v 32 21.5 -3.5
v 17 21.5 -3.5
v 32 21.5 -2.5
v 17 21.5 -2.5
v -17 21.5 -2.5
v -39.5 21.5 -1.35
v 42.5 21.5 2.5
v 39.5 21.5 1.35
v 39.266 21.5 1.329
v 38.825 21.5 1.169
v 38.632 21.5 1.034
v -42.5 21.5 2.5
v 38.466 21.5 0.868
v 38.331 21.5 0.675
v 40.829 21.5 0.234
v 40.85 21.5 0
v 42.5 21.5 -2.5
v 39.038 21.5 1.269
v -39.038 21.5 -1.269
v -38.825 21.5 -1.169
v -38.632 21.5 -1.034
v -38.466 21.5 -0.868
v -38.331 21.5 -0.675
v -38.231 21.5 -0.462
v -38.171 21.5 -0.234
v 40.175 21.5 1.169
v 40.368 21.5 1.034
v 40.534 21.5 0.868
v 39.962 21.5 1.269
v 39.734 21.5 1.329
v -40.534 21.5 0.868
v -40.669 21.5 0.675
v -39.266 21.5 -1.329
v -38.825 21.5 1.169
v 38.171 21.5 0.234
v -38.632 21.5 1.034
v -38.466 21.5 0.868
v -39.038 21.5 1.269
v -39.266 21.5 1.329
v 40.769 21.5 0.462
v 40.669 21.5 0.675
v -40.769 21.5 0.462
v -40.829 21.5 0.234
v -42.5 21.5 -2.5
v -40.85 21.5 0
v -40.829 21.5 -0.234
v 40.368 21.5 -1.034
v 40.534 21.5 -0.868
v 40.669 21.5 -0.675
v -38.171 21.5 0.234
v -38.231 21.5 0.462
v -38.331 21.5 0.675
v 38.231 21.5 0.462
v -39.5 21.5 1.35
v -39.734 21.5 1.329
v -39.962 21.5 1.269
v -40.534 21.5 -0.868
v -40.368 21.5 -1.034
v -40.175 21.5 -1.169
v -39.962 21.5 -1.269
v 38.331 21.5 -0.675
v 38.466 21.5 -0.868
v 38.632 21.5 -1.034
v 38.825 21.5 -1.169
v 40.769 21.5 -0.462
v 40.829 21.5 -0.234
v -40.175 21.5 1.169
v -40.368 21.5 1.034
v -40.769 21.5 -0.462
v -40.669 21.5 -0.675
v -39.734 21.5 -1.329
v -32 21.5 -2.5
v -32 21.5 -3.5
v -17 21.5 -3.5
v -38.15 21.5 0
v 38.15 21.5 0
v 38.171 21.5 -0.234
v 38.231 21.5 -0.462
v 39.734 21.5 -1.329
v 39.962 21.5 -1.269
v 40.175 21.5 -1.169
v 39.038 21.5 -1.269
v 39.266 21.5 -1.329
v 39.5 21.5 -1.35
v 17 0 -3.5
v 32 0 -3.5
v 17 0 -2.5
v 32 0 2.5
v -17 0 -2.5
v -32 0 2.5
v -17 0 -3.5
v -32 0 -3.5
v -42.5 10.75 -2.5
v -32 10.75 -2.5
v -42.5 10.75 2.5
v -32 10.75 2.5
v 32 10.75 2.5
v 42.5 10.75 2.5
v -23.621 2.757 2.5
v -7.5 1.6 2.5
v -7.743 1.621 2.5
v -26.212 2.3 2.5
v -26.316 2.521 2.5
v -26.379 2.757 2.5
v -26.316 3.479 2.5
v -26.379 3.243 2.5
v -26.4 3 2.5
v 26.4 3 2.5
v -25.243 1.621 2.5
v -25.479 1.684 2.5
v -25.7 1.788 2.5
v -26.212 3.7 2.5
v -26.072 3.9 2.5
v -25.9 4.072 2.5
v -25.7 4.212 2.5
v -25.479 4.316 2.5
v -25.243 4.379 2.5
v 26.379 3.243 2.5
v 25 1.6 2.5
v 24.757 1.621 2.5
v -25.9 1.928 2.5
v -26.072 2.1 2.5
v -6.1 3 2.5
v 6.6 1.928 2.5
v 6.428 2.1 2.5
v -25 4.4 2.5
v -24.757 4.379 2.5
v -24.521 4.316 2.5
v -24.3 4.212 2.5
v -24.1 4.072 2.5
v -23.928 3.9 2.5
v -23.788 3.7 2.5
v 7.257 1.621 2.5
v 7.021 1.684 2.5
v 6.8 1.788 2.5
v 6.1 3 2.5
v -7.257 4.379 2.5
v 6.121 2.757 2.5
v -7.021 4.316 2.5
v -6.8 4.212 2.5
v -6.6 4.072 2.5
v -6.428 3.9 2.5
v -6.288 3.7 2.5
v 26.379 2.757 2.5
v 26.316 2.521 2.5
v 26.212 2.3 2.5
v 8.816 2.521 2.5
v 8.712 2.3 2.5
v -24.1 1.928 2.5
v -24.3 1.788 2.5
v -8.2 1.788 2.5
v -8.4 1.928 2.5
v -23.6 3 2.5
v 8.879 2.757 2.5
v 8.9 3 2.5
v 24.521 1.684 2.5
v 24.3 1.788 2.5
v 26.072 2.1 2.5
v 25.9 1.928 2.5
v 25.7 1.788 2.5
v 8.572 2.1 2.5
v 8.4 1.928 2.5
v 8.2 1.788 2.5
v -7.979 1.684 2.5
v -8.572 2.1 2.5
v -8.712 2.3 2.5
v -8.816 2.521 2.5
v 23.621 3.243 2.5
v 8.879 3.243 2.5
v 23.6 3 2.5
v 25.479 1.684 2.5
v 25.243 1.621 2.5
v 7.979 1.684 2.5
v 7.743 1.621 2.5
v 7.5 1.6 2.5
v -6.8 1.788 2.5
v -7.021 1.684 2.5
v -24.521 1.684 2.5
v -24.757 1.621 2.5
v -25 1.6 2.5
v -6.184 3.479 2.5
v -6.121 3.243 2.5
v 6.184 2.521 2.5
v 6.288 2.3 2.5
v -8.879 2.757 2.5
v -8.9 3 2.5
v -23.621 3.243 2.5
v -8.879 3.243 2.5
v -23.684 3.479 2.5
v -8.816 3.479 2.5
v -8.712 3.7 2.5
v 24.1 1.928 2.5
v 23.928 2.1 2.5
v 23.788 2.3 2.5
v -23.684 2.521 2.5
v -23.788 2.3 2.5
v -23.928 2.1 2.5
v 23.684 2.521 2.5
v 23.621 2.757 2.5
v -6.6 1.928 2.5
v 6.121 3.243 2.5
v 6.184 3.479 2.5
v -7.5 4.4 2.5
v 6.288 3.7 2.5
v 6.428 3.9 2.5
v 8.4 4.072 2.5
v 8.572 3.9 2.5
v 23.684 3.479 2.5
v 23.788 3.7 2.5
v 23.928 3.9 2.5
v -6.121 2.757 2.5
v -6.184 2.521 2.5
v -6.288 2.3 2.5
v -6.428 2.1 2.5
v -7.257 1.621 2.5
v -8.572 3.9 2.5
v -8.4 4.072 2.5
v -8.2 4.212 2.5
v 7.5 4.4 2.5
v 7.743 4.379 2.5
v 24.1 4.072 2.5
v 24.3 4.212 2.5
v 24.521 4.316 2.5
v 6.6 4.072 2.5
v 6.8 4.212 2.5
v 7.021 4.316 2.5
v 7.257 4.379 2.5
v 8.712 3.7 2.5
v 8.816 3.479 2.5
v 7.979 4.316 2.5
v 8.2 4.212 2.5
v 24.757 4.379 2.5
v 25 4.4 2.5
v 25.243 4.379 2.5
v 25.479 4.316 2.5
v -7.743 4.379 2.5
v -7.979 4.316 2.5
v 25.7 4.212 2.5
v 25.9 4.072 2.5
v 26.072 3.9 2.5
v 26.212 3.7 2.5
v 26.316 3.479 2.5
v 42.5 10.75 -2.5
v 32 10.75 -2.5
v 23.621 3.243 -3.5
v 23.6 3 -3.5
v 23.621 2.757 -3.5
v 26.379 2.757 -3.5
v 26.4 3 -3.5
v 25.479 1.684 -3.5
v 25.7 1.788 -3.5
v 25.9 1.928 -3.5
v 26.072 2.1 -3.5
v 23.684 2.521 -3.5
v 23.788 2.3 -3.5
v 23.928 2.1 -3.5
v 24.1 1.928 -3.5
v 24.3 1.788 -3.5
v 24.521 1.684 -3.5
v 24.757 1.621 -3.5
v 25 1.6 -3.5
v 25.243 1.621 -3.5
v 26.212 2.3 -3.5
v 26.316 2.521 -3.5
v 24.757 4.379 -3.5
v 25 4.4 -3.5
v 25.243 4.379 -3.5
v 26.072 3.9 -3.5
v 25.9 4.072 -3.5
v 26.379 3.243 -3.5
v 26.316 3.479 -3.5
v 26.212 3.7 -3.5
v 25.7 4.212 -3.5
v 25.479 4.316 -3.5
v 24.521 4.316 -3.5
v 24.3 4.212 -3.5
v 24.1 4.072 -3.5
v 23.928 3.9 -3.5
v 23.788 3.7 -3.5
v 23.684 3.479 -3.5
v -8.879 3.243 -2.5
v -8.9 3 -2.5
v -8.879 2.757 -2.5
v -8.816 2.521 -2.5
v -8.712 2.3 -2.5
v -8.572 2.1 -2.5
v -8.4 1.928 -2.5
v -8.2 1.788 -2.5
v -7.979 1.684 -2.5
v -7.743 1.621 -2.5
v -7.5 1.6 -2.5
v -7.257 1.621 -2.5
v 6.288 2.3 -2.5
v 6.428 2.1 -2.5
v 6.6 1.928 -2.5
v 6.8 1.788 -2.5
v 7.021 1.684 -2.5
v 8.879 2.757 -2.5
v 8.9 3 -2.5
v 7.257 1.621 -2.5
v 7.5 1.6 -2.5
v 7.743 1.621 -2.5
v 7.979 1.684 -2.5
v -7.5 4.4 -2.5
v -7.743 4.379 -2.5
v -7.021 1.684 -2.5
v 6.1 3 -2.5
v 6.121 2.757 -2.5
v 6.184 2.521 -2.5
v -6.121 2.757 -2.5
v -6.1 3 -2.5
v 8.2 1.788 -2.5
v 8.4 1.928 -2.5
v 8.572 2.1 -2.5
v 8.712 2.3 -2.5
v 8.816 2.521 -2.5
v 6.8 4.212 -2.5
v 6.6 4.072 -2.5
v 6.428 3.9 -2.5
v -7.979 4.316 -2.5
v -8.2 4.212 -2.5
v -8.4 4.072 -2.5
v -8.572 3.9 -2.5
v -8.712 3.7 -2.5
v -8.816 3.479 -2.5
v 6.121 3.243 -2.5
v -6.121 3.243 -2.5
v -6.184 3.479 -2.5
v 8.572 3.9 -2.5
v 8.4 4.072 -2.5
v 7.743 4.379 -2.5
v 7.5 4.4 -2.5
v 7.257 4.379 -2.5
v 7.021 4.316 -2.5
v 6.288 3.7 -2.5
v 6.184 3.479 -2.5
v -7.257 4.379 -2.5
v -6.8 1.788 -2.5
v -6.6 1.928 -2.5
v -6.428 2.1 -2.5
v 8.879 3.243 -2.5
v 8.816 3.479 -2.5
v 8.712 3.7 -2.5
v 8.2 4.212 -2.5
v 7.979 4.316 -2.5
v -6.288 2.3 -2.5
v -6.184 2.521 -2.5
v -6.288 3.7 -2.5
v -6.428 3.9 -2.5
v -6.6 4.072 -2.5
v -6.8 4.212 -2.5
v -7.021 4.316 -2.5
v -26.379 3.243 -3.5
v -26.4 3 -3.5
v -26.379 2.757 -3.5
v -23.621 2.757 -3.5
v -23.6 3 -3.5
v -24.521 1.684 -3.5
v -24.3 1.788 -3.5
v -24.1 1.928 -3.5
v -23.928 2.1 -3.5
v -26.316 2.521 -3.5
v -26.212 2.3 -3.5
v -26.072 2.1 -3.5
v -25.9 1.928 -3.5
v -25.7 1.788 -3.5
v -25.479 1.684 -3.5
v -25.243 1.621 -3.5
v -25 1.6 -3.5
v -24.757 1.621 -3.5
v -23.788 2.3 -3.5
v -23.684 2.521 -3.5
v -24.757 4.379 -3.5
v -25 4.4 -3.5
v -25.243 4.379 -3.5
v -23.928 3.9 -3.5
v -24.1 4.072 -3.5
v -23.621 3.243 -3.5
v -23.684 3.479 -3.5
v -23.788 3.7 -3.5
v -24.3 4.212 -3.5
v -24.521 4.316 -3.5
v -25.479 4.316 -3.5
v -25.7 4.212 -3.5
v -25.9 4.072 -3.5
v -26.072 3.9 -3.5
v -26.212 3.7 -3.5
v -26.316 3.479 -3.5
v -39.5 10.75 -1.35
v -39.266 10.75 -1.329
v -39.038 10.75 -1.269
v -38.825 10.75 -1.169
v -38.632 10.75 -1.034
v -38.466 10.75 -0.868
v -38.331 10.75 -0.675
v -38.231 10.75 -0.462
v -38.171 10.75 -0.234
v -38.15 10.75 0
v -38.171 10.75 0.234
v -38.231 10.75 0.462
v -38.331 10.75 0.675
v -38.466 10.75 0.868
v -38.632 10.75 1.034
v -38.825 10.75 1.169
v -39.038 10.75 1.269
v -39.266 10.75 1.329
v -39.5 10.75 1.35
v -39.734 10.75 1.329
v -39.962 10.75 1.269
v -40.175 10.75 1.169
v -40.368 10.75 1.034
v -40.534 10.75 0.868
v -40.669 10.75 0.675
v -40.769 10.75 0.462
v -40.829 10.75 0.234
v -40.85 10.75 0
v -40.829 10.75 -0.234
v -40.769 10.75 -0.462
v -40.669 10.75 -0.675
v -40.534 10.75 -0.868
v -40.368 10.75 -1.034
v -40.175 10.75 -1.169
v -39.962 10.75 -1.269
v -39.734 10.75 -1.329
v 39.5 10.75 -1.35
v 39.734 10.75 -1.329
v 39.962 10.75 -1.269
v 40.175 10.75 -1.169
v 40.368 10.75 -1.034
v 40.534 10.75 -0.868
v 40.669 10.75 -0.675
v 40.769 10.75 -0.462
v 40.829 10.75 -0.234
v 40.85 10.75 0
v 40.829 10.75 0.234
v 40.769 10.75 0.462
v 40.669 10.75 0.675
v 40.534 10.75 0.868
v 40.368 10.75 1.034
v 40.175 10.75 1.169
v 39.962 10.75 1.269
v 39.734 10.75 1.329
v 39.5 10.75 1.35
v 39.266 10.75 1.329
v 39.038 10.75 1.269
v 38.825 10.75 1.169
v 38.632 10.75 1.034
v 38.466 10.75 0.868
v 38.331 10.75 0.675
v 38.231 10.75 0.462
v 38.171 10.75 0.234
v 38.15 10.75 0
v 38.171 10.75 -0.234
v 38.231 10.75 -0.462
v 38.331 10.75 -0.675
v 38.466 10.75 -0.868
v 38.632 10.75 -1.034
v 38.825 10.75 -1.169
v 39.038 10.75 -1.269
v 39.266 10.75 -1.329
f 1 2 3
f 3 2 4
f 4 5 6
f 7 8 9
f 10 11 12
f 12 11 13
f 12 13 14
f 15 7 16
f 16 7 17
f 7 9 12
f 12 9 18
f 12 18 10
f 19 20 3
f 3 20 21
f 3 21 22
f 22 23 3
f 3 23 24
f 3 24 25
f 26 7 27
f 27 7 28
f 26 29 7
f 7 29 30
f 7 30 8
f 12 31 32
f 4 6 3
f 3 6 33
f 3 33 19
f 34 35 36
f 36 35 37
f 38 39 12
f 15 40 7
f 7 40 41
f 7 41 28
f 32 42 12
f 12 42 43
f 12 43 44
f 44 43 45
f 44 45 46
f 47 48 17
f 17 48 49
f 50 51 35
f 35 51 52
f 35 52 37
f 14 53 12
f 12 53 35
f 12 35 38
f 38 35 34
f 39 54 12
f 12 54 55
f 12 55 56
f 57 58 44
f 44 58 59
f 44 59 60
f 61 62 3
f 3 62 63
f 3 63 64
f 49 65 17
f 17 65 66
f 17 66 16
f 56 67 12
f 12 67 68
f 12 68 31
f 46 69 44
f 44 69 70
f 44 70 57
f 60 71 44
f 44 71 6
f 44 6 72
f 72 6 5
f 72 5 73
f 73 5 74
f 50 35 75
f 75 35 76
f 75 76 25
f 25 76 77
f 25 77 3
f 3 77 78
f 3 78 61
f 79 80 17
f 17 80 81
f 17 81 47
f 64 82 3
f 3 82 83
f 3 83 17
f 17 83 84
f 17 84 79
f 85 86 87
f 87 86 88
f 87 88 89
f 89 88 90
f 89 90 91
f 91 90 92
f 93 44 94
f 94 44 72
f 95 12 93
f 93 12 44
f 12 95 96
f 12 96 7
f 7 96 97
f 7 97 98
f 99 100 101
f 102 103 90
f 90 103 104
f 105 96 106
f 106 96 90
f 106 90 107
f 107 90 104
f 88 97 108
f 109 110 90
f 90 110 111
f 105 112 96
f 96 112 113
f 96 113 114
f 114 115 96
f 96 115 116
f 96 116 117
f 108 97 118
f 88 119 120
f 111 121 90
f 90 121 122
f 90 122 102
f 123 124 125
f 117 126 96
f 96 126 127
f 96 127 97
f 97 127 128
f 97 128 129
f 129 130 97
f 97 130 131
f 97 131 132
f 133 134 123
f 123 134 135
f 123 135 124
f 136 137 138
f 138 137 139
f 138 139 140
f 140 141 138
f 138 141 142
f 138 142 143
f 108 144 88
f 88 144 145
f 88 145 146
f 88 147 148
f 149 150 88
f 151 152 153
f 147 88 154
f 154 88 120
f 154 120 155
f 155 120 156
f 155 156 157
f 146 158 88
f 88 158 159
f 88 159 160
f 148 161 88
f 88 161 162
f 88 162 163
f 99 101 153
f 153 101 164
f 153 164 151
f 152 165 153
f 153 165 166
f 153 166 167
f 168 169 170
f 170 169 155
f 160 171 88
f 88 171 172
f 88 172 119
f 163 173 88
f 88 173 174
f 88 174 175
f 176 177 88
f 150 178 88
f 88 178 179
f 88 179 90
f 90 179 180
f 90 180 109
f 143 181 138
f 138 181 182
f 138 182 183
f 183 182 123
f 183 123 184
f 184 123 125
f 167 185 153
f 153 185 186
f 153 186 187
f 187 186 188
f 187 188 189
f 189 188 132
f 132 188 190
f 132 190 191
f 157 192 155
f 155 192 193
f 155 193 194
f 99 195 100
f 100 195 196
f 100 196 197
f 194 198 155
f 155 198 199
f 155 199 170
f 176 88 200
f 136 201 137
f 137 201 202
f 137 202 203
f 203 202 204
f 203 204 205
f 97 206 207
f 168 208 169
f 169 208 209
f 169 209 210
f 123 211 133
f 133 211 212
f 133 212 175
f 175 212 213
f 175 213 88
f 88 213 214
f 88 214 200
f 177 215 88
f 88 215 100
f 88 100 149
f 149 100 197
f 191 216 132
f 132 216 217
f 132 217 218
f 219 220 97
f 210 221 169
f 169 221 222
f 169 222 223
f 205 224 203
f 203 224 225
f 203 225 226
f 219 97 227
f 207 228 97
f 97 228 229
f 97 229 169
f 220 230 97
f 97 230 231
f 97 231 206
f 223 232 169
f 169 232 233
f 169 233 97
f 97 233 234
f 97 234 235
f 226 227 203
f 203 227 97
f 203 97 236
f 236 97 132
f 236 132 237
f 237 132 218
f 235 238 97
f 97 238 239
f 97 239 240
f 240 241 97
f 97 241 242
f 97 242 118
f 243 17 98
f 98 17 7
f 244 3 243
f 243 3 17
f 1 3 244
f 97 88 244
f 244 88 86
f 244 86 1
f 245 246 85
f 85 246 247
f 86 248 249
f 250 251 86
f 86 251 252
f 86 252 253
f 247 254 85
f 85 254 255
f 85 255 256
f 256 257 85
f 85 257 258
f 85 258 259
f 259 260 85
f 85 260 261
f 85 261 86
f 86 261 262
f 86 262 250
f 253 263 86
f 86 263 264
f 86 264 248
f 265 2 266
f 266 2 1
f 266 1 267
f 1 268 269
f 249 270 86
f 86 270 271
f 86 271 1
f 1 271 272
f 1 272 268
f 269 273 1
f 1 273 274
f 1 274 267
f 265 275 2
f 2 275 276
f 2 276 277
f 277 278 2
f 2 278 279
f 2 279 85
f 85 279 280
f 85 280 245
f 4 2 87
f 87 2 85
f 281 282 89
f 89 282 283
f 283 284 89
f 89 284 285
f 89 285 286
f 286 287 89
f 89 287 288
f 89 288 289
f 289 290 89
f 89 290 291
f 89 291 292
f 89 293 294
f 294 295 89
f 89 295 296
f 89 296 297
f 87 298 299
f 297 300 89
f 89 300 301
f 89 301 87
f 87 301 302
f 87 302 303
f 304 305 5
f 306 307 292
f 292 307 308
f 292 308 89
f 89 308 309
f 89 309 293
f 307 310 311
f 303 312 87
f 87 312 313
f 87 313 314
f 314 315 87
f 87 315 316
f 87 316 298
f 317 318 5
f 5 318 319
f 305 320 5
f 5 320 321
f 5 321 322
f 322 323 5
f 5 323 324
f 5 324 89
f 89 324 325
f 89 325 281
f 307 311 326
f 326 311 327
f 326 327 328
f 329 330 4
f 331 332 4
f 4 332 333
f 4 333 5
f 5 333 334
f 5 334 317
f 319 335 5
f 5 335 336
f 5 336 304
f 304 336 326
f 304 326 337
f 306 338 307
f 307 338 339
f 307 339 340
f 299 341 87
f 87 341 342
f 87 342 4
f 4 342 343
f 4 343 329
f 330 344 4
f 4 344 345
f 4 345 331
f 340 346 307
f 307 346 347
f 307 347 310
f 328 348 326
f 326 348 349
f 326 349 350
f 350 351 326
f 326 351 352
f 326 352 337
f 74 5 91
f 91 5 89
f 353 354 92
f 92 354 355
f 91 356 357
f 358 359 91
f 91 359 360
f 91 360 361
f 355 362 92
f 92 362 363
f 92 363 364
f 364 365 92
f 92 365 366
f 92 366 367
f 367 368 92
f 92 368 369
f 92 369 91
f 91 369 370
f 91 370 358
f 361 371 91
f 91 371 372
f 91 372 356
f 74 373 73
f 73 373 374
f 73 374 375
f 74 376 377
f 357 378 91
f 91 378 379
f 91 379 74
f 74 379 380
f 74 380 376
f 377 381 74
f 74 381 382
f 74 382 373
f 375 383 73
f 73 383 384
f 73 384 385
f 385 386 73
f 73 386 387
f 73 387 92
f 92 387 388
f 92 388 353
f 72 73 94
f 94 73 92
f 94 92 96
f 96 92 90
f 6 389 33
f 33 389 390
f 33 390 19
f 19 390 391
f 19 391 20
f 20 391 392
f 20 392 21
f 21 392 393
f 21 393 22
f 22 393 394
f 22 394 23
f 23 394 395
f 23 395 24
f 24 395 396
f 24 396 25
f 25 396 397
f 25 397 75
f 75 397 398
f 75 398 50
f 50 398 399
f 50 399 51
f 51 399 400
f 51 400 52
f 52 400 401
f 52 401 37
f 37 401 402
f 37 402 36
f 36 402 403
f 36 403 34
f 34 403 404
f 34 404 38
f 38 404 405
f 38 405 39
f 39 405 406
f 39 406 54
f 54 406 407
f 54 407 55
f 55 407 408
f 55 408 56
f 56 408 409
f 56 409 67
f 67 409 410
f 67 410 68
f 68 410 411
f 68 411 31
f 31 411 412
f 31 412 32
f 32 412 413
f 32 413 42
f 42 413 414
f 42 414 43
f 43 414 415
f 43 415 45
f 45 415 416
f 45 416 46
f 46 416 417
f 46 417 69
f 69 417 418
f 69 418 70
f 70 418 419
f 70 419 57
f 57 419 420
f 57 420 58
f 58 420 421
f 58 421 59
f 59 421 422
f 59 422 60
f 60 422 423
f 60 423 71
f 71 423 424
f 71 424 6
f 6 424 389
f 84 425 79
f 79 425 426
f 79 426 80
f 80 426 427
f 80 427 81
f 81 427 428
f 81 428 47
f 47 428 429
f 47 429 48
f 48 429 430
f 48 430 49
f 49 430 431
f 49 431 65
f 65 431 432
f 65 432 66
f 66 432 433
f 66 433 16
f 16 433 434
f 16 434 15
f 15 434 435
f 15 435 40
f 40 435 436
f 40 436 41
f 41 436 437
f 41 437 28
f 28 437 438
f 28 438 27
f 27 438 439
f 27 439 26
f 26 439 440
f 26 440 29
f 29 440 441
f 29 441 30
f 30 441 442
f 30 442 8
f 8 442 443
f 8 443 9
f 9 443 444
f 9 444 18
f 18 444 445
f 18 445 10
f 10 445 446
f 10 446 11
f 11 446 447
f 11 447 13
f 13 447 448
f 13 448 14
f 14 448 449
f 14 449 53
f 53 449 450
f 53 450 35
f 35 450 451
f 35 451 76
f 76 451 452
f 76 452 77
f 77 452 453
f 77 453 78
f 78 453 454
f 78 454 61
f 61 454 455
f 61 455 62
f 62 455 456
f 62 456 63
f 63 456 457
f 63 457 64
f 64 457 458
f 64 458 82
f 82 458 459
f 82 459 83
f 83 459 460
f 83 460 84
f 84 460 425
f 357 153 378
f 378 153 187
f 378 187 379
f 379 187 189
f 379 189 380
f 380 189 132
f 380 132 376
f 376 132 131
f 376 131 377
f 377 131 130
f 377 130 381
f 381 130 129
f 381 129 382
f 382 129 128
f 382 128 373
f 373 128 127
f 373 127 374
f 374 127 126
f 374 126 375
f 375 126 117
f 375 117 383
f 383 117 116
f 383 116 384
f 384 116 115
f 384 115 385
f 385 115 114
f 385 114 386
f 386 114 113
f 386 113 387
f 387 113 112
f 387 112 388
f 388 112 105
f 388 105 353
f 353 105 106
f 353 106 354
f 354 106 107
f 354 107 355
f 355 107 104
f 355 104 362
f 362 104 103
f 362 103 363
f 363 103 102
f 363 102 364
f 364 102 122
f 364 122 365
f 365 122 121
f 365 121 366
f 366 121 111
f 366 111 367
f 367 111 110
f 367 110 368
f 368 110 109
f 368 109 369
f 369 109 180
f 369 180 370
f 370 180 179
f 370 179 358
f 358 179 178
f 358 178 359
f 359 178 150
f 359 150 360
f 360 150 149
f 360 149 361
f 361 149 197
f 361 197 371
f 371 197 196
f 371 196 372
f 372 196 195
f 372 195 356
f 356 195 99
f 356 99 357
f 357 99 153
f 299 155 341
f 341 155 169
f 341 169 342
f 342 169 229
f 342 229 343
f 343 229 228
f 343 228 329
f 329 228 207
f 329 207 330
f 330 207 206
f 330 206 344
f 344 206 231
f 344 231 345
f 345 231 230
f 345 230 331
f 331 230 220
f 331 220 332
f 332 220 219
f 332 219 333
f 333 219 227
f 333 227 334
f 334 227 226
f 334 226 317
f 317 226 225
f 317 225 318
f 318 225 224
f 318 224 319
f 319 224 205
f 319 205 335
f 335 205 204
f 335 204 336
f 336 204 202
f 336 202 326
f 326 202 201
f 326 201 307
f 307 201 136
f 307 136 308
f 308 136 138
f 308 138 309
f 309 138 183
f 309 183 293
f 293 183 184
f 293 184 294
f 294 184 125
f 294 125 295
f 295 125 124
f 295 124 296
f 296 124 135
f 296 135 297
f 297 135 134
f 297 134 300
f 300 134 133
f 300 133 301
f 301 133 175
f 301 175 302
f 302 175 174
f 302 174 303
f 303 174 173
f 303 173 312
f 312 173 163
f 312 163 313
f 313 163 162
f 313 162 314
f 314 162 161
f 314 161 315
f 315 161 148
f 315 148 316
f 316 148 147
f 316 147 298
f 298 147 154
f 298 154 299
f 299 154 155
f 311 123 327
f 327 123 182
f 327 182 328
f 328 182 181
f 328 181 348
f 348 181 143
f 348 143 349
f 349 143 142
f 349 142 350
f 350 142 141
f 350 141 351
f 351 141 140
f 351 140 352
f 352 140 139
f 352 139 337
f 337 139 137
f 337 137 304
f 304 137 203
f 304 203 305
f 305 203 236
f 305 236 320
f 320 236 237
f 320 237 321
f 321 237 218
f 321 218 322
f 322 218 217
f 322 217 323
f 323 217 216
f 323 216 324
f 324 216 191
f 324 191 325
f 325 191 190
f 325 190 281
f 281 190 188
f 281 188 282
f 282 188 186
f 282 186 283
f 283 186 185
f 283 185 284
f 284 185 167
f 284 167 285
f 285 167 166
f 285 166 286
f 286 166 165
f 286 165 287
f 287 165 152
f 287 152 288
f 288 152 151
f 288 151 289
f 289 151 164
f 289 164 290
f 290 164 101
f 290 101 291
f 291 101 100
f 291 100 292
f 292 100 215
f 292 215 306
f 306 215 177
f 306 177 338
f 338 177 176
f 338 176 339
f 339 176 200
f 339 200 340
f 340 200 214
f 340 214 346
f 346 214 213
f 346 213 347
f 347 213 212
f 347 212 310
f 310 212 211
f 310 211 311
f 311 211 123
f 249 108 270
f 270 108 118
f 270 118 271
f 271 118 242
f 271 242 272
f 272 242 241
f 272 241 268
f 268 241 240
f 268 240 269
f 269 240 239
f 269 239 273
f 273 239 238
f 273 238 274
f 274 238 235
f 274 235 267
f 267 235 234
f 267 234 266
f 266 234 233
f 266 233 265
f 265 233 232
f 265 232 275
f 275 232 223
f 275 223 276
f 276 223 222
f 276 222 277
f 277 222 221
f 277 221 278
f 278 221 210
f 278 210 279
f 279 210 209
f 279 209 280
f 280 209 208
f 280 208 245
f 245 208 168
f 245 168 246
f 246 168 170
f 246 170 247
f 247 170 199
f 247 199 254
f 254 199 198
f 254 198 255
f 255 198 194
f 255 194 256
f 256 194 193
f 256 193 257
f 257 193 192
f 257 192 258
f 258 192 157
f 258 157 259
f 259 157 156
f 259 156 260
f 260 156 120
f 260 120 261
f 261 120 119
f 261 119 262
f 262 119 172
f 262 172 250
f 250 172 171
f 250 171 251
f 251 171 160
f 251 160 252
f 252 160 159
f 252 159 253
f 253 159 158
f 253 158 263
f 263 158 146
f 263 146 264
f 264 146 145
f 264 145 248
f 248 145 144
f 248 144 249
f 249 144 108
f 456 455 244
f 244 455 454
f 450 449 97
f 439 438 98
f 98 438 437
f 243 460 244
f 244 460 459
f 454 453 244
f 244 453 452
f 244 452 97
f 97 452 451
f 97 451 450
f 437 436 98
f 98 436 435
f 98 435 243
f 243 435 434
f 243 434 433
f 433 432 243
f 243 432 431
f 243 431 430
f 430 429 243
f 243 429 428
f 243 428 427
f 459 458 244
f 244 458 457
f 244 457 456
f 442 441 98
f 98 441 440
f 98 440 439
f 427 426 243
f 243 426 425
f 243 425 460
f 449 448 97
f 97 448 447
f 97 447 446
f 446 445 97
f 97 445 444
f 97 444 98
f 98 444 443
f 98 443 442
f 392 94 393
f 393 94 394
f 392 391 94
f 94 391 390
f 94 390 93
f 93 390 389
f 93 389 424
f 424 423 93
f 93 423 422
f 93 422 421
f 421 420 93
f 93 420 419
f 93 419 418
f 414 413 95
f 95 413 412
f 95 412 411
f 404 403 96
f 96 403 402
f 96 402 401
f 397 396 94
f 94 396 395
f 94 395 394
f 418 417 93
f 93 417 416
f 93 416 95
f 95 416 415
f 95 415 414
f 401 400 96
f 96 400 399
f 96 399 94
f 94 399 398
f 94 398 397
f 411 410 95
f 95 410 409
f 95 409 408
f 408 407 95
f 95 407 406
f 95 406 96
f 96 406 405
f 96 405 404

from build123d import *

# Parameters (mm, degrees)
SKETCH1_R               = 1.35
BOSS_EXTRUDE1_DEPTH     = 21.5
SKETCH2_R               = 1.4
CUT_EXTRUDE1_DEPTH      = 21.5
SKETCH3_W               = 10.5
SKETCH3_H               = 10.75
CUT_EXTRUDE2_DEPTH      = 2
CUT_EXTRUDE2_DEPTH_BACK = 6


with BuildPart() as part:
    # Sketch1 → Boss-Extrude1 (new body)
    with BuildSketch(Plane(origin=(0, 0, 0), x_dir=(1, 0, 0), z_dir=(0, 1, 0))):
        Polygon((42.5, -2.5), (-42.5, -2.5), (-42.5, 2.5), (-32, 2.5), (-32, 3.5), (-17, 3.5), (-17, 2.5), (17, 2.5), (17, 3.5), (32, 3.5), (32, 2.5), (42.5, 2.5), align=None)
        with Locations((-39.5, 0)):
            Circle(SKETCH1_R, mode=Mode.SUBTRACT)
        with Locations((39.5, 0)):
            Circle(SKETCH1_R, mode=Mode.SUBTRACT)
    extrude(amount=BOSS_EXTRUDE1_DEPTH)

    # Sketch2 → Cut-Extrude1 (cut)
    with BuildSketch(Plane(origin=(0, 0, 2.5), x_dir=(-1, 0, 0), z_dir=(0, 0, -1))):
        with Locations((-7.5, 3)):
            Circle(SKETCH2_R)
        with Locations((7.5, 3)):
            Circle(SKETCH2_R)
        with Locations((-25, 3)):
            Circle(SKETCH2_R)
        with Locations((25, 3)):
            Circle(SKETCH2_R)
    extrude(amount=CUT_EXTRUDE1_DEPTH, mode=Mode.SUBTRACT)

    # Sketch3 → Cut-Extrude2 (cut, two sides)
    with BuildSketch(Plane(origin=(0, 0, -2.5), x_dir=(-1, 0, 0), z_dir=(0, 0, -1))) as cut_extrude2_sk:
        with Locations((-37.25, 5.375)):
            Rectangle(SKETCH3_W, SKETCH3_H)
        with Locations((37.25, 5.375)):
            Rectangle(SKETCH3_W, SKETCH3_H)
    extrude(amount=CUT_EXTRUDE2_DEPTH, mode=Mode.SUBTRACT)
    extrude(cut_extrude2_sk.sketch, amount=-CUT_EXTRUDE2_DEPTH_BACK, mode=Mode.SUBTRACT)


solid = part.part
